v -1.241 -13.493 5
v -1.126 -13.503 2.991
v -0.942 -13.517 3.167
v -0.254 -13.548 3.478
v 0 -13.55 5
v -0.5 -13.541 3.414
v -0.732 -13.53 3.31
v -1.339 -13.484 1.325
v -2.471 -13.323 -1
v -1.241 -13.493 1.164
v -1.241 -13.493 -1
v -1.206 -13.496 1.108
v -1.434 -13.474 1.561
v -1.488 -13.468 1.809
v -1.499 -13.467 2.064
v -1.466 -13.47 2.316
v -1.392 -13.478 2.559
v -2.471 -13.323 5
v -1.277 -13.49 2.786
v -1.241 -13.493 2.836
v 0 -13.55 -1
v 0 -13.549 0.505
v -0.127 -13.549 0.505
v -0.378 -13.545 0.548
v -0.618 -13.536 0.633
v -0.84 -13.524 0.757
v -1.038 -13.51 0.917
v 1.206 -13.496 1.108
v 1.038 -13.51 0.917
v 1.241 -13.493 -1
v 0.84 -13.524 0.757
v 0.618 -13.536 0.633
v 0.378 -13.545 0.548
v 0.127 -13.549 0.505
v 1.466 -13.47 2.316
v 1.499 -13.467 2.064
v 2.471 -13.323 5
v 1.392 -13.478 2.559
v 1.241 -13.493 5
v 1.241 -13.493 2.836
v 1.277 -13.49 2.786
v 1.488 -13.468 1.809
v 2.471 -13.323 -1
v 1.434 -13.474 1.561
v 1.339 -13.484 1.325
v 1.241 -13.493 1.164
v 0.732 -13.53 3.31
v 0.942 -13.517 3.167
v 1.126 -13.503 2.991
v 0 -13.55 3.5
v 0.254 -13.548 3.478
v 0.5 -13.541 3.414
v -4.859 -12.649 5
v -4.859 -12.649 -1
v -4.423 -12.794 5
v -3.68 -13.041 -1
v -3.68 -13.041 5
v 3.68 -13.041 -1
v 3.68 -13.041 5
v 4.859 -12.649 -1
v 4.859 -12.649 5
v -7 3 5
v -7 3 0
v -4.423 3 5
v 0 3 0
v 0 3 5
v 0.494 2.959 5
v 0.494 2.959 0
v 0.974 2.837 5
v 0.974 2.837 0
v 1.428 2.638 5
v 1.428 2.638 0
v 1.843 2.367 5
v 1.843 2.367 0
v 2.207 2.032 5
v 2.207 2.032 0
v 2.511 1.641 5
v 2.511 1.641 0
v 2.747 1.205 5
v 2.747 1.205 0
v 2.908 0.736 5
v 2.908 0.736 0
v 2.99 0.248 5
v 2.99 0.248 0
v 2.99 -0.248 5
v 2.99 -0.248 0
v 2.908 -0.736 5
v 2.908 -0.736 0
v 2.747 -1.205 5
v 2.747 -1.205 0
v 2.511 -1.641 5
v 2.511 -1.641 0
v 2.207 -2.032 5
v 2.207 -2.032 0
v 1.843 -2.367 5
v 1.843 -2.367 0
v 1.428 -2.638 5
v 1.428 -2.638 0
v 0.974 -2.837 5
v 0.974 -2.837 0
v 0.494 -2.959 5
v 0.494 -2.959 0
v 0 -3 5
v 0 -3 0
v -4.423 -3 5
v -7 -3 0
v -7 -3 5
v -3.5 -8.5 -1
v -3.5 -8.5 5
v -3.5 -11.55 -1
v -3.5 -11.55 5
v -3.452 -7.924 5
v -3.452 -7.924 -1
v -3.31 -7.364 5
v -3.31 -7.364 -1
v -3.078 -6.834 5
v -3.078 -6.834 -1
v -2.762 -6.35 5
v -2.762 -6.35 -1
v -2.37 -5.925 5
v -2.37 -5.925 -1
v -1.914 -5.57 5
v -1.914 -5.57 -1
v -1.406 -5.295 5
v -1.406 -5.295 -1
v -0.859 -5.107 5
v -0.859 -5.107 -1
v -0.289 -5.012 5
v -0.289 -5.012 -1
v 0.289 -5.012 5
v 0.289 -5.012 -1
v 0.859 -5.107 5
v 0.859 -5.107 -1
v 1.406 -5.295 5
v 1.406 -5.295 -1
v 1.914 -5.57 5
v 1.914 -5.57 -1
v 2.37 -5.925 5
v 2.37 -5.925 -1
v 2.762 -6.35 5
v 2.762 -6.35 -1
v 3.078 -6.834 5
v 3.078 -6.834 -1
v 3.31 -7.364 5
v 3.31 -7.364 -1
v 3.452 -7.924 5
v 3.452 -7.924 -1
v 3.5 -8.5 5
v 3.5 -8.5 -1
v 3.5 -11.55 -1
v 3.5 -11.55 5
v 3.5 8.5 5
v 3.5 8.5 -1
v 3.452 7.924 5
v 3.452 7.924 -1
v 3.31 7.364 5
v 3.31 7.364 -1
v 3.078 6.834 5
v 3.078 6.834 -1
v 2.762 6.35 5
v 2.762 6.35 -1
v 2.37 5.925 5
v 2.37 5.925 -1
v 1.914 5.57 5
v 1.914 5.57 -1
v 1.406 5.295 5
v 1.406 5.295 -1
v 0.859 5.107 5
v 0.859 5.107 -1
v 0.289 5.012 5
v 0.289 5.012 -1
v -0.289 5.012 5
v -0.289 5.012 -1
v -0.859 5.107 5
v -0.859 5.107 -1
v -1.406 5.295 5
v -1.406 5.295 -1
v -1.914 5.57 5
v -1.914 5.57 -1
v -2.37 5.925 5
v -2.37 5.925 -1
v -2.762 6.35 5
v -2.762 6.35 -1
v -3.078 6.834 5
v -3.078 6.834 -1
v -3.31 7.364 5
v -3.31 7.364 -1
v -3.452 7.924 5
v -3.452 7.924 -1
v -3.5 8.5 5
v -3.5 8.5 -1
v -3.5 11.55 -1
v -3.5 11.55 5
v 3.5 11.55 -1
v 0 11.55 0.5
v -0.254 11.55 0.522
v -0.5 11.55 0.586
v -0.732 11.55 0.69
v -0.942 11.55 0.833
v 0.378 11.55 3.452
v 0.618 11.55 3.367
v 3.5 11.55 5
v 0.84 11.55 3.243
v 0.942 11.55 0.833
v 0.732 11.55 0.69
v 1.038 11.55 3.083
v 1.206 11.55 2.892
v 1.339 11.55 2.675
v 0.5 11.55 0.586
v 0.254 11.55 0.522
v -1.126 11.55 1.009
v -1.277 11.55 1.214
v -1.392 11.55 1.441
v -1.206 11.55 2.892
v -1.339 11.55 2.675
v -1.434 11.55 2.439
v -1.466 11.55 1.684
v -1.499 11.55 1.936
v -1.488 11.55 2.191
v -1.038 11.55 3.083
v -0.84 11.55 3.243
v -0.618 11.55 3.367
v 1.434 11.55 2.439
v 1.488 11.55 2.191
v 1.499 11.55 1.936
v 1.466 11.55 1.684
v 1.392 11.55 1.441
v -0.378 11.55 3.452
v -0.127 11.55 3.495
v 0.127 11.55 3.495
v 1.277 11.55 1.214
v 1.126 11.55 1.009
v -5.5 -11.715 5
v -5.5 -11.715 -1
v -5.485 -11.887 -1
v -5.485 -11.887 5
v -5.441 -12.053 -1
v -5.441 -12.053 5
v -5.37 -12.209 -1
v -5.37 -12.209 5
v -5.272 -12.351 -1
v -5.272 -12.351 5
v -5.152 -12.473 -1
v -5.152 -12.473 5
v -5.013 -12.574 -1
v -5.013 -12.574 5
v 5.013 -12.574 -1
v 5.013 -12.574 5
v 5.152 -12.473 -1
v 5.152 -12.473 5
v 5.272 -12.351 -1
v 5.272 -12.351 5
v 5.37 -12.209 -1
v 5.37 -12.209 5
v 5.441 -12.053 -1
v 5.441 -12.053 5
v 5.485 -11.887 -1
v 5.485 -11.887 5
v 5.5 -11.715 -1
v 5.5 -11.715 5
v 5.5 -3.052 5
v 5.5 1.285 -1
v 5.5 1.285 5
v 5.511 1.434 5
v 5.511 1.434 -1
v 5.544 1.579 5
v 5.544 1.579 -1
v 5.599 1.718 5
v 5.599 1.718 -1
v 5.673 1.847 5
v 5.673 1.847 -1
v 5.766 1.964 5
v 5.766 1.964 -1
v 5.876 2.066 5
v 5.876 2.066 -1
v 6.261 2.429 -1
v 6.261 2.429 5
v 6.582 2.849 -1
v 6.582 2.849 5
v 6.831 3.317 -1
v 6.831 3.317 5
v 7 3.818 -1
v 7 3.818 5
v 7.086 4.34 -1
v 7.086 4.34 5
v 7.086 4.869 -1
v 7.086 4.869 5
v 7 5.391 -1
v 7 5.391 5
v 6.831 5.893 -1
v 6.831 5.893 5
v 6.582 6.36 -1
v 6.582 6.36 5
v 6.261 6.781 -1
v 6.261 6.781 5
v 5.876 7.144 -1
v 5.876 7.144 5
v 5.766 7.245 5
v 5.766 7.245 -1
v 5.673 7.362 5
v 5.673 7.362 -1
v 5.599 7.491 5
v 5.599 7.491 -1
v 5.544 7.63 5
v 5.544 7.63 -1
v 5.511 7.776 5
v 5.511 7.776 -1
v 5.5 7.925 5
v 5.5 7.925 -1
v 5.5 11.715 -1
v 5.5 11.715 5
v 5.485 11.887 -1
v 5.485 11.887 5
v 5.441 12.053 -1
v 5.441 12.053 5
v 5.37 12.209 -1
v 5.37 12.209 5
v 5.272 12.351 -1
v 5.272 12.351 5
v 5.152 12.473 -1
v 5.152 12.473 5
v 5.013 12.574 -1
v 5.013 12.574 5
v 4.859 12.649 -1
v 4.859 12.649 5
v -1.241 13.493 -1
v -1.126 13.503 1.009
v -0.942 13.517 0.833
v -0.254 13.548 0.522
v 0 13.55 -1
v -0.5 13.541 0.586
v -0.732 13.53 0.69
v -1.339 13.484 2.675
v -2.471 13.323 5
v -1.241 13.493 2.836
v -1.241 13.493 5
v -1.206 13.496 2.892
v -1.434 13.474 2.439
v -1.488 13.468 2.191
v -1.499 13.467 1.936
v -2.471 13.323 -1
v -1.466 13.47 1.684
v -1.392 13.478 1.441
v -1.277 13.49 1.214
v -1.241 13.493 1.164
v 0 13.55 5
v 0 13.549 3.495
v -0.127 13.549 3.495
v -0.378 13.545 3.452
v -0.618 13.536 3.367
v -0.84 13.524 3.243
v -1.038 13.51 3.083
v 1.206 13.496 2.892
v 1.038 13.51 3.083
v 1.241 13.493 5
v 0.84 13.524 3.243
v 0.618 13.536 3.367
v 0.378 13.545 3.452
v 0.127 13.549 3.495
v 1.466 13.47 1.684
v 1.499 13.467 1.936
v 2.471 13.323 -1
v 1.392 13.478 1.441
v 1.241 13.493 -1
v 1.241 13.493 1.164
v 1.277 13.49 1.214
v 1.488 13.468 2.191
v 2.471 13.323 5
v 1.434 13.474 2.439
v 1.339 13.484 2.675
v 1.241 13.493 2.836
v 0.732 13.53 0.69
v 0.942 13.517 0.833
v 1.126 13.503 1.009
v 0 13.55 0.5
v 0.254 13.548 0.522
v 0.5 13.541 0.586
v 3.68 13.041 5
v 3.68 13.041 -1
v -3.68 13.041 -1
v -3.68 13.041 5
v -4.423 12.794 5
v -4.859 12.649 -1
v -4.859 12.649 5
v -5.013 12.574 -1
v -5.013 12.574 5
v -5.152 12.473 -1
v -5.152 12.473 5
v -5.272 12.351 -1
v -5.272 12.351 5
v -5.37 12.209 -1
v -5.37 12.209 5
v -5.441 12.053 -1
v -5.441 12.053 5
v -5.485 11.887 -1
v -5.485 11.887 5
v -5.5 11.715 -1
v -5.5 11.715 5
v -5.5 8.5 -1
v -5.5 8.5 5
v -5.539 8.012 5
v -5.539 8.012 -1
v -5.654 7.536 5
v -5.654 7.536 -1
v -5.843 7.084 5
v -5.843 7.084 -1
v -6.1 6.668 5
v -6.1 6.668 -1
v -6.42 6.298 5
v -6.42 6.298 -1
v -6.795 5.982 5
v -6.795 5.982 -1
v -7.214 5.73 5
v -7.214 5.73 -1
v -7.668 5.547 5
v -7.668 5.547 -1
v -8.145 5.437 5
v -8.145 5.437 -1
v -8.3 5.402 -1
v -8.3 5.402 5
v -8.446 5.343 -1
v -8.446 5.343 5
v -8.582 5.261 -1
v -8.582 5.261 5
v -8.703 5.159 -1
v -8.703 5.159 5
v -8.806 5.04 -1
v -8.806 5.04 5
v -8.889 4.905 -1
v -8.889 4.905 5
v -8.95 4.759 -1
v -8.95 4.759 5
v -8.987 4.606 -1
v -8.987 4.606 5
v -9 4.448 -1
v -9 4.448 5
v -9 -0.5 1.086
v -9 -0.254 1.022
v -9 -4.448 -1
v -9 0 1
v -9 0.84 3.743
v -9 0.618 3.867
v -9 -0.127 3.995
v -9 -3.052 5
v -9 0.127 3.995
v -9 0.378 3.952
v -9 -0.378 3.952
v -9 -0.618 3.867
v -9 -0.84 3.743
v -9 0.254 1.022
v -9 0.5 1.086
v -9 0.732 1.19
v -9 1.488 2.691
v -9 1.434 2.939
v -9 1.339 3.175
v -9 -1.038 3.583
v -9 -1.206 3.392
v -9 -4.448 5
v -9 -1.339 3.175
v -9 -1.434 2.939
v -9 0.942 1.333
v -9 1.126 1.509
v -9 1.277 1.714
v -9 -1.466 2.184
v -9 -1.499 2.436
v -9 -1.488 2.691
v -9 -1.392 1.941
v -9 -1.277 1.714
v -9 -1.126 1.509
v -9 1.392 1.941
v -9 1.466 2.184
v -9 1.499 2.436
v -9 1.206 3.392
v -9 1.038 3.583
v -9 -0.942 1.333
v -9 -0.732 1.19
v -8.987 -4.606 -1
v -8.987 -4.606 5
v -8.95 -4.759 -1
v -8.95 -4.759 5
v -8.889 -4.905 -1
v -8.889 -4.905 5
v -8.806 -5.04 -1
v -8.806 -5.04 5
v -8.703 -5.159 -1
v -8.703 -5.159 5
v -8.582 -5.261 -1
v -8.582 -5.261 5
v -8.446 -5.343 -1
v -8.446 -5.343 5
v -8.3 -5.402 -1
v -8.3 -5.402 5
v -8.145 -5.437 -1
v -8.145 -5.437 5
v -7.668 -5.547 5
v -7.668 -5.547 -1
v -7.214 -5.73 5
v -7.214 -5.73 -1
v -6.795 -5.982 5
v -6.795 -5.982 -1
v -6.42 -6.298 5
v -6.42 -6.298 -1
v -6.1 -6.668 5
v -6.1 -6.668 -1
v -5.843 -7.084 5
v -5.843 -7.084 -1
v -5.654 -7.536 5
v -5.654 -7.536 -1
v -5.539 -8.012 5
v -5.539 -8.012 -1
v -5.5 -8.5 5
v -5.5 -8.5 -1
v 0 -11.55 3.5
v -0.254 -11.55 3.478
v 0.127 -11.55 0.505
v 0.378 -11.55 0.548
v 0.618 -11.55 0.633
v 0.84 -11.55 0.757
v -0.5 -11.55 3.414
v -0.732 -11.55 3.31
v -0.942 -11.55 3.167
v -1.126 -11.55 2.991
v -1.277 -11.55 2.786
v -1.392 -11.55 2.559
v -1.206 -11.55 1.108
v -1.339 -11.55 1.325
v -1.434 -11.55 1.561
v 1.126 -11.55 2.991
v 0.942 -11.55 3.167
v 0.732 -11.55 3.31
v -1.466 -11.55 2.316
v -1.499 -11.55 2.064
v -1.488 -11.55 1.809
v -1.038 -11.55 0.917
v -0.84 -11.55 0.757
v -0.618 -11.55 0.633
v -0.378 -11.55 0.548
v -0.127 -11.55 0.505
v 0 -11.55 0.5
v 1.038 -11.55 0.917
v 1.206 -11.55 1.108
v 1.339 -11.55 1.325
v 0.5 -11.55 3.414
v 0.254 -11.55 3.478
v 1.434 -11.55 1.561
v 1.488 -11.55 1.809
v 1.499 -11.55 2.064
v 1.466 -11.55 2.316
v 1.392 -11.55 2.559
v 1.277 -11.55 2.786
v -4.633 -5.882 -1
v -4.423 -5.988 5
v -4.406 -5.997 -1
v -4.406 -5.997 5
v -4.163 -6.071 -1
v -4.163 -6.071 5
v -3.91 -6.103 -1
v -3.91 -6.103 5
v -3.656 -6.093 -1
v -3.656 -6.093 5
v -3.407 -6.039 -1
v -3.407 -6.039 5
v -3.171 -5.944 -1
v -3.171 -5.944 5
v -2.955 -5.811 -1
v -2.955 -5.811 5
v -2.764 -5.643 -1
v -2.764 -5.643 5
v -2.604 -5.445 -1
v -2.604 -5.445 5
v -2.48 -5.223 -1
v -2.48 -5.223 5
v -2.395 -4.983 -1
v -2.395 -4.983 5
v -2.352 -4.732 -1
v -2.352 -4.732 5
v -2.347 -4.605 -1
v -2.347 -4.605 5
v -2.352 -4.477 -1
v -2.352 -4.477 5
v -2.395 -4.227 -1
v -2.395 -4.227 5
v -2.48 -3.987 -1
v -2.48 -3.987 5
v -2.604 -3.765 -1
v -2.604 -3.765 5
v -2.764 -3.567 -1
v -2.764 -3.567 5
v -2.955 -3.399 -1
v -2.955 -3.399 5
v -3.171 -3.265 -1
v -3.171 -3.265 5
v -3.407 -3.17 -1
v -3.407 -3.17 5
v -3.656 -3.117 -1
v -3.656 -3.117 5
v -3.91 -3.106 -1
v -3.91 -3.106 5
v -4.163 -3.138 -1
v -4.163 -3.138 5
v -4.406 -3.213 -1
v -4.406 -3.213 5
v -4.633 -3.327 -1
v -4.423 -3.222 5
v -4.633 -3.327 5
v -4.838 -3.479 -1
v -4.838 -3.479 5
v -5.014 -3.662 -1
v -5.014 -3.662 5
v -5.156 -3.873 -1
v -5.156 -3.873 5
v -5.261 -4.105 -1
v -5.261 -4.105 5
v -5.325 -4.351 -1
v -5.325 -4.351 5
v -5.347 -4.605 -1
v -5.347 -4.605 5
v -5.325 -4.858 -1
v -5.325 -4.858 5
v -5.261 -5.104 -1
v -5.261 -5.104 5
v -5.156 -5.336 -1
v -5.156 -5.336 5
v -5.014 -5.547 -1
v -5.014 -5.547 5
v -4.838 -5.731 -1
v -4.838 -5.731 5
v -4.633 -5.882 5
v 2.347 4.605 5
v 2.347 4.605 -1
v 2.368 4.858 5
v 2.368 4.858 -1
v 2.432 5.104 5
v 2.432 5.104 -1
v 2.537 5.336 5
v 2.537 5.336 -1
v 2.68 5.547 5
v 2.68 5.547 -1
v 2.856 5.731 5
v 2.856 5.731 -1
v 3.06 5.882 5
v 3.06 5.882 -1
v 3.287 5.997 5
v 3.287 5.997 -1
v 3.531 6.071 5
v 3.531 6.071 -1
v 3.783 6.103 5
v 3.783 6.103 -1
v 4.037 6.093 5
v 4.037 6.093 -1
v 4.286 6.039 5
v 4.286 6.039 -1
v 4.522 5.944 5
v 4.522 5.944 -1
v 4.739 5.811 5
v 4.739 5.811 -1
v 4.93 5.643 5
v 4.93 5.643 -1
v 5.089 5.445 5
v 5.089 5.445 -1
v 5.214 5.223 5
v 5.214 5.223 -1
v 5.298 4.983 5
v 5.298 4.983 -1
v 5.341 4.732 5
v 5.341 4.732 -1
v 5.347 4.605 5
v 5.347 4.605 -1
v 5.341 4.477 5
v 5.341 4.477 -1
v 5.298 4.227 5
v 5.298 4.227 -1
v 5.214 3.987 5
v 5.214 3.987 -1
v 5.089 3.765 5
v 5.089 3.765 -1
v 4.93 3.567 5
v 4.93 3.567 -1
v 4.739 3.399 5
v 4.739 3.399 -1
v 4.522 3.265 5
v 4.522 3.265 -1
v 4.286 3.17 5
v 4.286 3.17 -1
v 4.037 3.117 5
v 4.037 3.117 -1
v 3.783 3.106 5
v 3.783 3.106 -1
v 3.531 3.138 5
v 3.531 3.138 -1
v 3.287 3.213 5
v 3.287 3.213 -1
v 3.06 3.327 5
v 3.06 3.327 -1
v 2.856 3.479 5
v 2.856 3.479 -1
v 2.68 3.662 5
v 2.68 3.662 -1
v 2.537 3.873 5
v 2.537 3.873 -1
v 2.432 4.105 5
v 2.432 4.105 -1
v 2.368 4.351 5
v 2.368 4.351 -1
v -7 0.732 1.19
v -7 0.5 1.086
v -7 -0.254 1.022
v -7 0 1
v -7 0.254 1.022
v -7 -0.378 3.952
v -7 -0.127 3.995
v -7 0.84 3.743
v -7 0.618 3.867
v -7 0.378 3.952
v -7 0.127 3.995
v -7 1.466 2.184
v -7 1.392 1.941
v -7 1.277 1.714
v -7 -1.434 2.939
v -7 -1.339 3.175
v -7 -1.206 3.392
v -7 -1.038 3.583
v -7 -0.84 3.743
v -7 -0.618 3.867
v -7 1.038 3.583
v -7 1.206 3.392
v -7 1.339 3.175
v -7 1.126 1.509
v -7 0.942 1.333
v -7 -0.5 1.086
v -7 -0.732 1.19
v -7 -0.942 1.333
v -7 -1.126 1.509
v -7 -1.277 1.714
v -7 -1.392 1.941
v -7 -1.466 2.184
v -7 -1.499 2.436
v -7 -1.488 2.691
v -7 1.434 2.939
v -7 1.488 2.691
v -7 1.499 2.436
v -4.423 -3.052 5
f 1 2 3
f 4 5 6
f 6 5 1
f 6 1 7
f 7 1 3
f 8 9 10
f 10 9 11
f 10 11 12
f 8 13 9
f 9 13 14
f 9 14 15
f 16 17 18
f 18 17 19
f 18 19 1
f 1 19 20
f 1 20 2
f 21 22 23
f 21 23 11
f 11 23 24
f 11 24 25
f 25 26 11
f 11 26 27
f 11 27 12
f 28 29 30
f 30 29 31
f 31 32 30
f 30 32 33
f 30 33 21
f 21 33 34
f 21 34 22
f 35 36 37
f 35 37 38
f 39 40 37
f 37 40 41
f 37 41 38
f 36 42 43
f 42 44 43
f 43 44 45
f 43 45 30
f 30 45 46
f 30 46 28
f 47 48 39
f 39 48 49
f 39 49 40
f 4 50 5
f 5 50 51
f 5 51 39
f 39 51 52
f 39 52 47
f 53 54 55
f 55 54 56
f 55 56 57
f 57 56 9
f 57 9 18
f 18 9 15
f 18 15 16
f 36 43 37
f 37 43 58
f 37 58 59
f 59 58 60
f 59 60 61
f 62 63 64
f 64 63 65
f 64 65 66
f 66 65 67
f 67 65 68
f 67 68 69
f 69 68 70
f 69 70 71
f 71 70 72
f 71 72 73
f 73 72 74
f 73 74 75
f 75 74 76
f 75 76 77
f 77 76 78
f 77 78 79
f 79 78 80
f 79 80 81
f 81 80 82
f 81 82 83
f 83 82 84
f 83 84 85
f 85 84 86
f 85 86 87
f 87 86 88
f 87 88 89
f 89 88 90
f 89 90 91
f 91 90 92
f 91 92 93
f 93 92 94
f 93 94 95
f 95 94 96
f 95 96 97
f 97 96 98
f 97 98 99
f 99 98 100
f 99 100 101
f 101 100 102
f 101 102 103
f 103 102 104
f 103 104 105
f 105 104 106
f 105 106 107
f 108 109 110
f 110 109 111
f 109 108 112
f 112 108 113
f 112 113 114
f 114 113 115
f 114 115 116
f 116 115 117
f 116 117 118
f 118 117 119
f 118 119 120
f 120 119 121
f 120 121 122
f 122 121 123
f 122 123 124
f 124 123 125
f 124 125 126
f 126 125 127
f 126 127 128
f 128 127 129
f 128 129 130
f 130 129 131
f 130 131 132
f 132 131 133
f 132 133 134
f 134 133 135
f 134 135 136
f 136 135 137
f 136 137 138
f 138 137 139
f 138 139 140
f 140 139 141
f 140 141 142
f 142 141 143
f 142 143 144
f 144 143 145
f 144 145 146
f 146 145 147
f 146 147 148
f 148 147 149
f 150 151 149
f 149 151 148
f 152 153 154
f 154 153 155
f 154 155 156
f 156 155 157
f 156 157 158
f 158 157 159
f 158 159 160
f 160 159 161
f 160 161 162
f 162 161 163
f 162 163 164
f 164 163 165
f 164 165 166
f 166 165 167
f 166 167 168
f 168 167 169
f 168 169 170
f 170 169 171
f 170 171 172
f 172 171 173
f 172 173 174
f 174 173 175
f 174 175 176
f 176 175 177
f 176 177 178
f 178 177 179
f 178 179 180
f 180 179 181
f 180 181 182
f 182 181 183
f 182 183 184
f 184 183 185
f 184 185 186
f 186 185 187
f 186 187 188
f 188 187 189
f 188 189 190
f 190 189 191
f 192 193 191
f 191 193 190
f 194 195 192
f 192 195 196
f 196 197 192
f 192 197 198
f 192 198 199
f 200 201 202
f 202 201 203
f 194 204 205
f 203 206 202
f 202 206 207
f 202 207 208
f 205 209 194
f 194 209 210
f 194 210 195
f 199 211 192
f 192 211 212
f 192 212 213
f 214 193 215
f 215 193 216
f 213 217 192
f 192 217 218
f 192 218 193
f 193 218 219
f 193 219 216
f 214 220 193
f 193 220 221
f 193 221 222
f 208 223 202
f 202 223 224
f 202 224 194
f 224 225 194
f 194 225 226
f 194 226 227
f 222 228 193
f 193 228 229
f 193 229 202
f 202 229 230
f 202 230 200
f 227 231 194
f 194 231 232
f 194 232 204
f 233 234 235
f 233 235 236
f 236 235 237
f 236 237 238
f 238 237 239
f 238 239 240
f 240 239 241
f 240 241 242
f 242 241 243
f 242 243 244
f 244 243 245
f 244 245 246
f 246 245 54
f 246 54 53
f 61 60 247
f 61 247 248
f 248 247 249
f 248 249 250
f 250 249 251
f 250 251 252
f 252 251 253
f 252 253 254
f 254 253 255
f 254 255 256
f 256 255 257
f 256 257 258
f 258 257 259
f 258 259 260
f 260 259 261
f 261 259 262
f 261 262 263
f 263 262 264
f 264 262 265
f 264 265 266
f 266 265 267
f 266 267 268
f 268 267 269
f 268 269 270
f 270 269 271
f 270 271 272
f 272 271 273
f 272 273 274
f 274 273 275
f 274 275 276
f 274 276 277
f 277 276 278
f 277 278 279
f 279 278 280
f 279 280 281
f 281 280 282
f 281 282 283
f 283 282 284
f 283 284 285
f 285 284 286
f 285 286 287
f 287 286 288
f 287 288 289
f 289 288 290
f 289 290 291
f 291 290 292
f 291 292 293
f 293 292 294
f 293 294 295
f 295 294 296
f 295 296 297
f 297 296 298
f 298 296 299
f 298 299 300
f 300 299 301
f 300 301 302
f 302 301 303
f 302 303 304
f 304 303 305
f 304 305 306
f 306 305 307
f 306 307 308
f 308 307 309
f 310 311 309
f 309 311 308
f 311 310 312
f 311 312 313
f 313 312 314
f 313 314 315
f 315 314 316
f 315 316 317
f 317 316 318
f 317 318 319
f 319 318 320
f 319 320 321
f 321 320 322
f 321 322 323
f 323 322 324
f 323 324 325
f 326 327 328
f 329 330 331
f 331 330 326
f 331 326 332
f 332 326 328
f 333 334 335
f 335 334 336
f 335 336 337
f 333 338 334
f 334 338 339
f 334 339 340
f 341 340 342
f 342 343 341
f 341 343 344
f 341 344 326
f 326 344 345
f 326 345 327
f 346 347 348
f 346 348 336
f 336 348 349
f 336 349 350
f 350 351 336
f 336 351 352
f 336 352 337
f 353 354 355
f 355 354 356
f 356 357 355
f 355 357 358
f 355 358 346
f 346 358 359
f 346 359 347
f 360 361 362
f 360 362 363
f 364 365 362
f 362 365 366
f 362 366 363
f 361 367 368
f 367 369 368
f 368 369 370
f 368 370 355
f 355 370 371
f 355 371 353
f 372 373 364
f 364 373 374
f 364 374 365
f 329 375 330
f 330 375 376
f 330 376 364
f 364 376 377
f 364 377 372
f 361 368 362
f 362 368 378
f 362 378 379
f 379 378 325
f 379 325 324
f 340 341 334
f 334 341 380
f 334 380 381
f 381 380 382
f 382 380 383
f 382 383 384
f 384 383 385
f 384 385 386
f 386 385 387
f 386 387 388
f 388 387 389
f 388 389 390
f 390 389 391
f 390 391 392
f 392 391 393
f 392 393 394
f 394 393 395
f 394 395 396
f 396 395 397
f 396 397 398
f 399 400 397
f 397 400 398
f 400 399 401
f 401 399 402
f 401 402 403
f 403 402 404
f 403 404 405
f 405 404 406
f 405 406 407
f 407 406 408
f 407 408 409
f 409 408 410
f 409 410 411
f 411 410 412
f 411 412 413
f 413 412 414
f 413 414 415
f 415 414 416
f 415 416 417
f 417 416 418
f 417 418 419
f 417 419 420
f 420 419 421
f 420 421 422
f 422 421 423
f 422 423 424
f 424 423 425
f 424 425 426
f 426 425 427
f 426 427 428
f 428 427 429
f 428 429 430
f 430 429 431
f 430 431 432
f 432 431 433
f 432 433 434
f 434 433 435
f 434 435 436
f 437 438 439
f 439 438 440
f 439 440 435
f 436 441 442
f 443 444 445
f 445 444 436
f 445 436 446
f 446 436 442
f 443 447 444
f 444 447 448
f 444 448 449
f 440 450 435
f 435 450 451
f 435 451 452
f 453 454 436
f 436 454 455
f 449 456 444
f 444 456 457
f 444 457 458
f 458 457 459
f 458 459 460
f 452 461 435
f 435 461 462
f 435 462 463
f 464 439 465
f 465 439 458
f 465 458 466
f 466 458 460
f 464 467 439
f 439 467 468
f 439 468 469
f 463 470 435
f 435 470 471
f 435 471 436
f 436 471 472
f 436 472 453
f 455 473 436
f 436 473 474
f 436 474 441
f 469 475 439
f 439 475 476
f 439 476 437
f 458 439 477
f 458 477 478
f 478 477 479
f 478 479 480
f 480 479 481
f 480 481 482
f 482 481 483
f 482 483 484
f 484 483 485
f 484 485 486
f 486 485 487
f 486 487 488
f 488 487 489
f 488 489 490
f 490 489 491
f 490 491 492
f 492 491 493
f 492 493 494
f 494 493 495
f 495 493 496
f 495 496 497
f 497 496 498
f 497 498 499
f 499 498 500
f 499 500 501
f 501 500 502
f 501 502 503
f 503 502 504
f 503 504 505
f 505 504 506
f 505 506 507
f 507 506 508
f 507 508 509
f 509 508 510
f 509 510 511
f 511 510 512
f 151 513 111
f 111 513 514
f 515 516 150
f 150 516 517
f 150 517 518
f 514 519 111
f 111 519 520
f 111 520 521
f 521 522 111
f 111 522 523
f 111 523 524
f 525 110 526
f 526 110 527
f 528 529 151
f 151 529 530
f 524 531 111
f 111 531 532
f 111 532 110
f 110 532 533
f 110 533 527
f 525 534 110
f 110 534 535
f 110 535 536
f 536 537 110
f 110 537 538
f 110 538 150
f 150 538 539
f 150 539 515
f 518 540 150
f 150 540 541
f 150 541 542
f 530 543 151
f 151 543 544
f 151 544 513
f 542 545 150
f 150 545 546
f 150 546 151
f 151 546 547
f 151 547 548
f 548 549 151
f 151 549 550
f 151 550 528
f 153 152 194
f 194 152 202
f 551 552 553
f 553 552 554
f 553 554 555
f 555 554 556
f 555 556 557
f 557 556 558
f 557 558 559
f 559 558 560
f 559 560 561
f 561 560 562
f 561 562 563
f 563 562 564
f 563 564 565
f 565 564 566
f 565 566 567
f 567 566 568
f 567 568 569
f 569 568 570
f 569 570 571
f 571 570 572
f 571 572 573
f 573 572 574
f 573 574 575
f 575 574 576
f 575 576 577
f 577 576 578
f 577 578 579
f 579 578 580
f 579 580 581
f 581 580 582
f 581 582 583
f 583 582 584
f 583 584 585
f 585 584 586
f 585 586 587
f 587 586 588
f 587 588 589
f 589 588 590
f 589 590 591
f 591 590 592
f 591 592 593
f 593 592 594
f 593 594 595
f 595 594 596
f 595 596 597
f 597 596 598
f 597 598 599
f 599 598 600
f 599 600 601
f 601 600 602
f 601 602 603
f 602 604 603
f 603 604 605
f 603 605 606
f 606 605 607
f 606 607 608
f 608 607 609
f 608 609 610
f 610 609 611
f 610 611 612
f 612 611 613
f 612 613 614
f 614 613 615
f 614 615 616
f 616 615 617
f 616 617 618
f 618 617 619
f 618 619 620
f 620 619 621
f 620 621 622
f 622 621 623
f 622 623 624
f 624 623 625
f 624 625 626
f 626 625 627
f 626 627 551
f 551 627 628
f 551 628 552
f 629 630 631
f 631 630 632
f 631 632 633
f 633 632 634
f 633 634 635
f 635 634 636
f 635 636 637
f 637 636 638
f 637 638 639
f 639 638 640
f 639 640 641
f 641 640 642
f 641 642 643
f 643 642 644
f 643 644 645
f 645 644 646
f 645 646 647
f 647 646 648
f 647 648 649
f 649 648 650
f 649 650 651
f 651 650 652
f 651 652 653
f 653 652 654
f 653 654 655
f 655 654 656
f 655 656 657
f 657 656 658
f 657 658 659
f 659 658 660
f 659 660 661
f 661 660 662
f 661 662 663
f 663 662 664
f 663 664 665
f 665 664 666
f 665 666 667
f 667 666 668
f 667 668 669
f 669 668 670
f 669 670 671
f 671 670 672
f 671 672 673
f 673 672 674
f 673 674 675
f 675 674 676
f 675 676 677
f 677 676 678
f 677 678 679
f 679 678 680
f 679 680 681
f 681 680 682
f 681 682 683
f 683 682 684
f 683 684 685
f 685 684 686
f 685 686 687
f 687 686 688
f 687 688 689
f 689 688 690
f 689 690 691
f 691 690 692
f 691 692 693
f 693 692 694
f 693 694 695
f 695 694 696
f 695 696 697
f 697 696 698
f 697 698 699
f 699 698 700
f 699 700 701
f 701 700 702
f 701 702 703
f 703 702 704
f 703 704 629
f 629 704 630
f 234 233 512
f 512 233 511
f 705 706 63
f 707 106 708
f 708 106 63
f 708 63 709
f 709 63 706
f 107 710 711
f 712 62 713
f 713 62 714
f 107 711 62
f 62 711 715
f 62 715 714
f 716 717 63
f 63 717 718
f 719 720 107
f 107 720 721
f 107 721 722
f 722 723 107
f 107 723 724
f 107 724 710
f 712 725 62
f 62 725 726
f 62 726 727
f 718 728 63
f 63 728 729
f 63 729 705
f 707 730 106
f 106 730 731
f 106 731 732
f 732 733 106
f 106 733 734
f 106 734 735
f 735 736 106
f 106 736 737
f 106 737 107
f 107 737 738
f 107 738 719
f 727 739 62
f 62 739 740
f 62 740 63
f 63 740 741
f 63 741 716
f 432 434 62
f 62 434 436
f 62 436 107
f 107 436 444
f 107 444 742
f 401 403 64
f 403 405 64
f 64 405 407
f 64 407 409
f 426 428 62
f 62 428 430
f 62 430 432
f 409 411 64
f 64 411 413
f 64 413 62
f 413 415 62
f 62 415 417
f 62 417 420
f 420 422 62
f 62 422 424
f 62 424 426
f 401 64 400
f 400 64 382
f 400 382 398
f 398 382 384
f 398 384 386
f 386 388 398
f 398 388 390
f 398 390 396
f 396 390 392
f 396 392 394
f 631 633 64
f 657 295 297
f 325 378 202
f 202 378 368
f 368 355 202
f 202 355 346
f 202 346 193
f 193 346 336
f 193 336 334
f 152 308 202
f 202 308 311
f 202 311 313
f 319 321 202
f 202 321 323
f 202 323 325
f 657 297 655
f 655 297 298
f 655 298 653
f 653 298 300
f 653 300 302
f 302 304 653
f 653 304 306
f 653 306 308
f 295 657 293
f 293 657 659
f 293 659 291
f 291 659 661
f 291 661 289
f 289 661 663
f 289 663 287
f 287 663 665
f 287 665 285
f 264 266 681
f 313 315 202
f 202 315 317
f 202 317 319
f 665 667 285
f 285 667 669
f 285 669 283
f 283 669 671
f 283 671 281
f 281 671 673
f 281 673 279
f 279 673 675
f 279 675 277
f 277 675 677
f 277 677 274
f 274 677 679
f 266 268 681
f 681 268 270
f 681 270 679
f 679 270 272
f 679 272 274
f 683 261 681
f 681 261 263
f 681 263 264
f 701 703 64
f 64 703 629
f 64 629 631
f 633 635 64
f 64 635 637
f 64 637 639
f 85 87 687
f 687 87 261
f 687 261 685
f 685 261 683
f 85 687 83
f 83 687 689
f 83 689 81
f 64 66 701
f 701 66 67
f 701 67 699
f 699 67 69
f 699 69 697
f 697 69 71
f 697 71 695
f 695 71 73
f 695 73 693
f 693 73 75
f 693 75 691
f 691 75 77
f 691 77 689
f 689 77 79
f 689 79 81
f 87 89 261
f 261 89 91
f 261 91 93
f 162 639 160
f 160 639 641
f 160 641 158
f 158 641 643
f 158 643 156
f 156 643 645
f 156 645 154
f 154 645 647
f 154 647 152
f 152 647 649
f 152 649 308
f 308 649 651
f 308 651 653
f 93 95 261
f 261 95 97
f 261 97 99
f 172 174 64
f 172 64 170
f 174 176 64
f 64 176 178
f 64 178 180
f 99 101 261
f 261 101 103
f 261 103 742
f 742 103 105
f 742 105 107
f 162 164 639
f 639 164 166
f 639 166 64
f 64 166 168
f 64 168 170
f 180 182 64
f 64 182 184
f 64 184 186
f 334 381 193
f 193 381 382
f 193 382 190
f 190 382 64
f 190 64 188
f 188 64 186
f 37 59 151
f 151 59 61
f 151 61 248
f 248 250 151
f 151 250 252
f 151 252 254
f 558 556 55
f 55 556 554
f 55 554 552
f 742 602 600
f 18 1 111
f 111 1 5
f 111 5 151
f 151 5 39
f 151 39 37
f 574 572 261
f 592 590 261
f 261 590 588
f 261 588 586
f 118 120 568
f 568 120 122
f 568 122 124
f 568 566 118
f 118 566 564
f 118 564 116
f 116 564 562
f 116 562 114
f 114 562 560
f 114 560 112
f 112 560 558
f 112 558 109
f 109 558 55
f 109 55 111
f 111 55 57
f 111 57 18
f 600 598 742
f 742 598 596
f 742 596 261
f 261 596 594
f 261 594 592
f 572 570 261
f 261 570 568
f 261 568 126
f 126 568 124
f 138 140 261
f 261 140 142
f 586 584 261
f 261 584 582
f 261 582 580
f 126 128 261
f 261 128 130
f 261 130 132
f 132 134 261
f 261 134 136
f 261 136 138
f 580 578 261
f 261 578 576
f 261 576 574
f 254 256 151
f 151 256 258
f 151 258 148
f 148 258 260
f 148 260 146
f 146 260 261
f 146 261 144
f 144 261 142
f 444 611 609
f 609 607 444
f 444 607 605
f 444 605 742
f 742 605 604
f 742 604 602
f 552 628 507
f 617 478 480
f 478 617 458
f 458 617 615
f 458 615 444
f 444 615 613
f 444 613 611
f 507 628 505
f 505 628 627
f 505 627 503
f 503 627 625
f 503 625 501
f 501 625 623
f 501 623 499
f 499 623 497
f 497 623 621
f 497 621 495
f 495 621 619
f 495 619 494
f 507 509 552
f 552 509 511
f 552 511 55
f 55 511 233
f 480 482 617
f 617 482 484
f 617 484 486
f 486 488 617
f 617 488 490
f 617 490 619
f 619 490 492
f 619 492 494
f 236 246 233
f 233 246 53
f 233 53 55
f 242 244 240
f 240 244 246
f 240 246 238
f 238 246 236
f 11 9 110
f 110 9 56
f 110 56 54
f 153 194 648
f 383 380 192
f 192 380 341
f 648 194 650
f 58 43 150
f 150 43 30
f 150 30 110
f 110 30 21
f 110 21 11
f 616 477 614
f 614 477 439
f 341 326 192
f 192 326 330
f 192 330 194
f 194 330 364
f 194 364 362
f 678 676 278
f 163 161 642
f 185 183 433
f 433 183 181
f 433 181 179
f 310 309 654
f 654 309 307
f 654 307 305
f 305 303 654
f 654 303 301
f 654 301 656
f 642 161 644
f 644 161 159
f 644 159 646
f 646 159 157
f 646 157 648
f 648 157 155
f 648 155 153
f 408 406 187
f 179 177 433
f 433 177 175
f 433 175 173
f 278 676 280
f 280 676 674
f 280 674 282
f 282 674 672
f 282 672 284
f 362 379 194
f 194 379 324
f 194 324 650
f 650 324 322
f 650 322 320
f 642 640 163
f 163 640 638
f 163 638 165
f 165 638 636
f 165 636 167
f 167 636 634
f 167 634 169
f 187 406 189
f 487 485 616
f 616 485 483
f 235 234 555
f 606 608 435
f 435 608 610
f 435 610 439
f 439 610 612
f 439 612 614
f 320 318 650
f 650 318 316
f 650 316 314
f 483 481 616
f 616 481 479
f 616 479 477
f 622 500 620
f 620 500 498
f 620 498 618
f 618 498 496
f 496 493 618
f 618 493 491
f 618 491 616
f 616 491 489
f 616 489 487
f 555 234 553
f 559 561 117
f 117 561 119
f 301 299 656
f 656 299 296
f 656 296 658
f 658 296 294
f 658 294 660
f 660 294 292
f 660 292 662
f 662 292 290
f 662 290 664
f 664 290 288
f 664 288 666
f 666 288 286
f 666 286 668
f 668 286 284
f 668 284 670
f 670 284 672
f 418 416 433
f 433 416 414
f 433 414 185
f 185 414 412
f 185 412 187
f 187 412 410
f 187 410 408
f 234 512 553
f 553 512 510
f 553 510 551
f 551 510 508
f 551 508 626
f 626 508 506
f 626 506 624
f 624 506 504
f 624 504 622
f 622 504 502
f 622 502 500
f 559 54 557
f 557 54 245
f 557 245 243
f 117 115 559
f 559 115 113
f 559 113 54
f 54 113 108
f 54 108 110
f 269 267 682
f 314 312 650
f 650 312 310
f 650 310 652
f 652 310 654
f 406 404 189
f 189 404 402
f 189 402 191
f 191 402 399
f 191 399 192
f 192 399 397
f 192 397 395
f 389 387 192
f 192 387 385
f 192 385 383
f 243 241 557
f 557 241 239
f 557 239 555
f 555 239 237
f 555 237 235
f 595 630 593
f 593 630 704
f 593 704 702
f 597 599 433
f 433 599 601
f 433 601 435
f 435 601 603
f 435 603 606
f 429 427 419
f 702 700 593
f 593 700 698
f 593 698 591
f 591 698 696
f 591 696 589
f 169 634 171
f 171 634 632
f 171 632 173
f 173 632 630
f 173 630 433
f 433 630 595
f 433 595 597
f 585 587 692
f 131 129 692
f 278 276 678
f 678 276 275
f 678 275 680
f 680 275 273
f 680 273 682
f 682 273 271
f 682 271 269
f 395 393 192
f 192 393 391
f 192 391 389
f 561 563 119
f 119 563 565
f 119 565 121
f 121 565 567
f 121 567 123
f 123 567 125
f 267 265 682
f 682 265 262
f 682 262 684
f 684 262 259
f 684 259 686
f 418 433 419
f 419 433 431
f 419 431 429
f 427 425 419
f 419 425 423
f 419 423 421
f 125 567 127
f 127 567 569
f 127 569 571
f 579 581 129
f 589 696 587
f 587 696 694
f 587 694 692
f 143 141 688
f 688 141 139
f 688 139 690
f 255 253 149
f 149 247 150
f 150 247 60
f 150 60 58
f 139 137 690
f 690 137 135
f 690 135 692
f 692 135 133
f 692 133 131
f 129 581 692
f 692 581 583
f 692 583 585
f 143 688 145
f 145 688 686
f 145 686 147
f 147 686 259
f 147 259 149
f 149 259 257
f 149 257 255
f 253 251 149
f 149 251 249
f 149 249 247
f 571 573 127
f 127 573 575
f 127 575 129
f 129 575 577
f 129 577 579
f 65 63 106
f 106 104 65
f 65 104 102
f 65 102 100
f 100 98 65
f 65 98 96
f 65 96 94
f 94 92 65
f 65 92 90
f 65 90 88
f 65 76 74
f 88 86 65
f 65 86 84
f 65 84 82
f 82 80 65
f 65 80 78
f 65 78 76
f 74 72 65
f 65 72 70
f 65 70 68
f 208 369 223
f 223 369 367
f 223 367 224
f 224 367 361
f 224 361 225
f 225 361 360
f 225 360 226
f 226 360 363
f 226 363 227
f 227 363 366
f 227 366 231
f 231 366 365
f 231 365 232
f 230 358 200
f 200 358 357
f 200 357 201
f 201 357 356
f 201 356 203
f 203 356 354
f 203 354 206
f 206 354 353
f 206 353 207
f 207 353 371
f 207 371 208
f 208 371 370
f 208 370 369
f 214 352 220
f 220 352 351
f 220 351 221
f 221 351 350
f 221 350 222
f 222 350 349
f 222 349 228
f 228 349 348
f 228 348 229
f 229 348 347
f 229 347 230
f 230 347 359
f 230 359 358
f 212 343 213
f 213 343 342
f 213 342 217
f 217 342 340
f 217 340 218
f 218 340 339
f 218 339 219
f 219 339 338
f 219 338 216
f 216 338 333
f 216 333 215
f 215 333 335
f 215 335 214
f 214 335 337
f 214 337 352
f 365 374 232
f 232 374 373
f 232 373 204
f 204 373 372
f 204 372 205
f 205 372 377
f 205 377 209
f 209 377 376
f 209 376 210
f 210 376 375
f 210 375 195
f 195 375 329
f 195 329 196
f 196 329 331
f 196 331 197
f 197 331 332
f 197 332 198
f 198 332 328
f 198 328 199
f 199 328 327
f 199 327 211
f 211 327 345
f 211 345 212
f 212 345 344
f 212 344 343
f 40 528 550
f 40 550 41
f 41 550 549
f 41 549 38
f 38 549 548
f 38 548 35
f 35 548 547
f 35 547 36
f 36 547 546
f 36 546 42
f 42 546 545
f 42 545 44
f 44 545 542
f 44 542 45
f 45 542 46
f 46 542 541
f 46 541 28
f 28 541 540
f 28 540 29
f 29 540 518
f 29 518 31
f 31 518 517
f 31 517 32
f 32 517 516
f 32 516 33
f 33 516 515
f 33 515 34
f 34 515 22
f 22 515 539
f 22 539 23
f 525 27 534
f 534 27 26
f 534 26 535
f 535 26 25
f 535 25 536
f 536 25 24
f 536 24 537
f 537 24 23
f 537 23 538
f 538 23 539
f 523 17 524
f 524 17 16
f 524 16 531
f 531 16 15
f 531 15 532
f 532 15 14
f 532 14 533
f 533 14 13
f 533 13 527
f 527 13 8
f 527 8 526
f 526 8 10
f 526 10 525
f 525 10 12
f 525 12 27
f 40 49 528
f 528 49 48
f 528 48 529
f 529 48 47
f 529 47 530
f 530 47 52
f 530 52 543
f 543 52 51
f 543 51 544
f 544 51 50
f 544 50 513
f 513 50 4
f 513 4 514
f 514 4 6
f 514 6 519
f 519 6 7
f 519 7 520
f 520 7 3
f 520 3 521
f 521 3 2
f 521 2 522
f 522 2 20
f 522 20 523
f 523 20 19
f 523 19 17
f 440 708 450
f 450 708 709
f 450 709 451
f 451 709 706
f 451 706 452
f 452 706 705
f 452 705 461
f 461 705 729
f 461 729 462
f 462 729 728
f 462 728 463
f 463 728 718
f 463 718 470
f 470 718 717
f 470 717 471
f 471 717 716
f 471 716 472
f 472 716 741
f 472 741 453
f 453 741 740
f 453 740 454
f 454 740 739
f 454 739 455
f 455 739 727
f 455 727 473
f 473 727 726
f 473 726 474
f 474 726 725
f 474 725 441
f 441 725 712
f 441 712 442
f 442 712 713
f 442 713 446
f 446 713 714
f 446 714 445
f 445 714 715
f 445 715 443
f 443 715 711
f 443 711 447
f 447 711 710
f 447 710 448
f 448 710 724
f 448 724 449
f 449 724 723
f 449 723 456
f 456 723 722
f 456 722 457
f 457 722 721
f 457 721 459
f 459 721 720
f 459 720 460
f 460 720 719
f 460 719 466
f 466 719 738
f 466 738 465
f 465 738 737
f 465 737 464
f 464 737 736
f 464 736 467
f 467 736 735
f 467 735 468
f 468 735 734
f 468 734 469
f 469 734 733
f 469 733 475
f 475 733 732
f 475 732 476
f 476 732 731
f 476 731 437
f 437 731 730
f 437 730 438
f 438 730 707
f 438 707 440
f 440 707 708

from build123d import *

# Parameters (mm, degrees)
ESQUISSE1_R             = 1.5
BOSS_EXTRU_1_DEPTH      = 5
BOSS_EXTRU_2_START      = -1
ESQUISSE1_3_R           = 1.5
BOSS_EXTRU_2_DEPTH      = 1
ESQUISSE2_R             = 1.5
ENL_V_MAT_EXTRU_2_DEPTH = 28.129504234
ESQUISSE3_R             = 1.5
ENL_V_MAT_EXTRU_3_DEPTH = 21.182147001


with BuildPart() as part:
    # Esquisse1 → Boss.-Extru.1 (new body)
    with BuildSketch(Plane.XY):
        with BuildLine():
            ThreePointArc((-8.145422919, 5.437314339), (-8.756777021, 5.101617869), (-9, 4.447944754))
            Line((-9, 4.447944754), (-9, -4.447944754))
            ThreePointArc((-9, -4.447944754), (-8.756777021, -5.101617869), (-8.145422919, -5.437314339))
            ThreePointArc((-8.145422919, -5.437314339), (-6.252919377, -6.476494015), (-5.5, -8.5))
            Line((-5.5, -8.5), (-5.5, -11.715481211))
            ThreePointArc((-5.5, -11.715481211), (-5.324186186, -12.281800142), (-4.858565737, -12.64898569))
            ThreePointArc((-4.858565737, -12.64898569), (0, -13.55), (4.858565737, -12.64898569))
            ThreePointArc((4.858565737, -12.64898569), (5.324186186, -12.281800142), (5.5, -11.715481211))
            Line((5.5, -11.715481211), (5.5, 1.284668728))
            ThreePointArc((5.5, 1.284668728), (5.598803794, 1.718080078), (5.875690797, 2.065846057))
            ThreePointArc((5.875690797, 2.065846057), (7.096685887, 4.604672376), (5.875690797, 7.143498694))
            ThreePointArc((5.875690797, 7.143498694), (5.598803794, 7.491264673), (5.5, 7.924676023))
            Line((5.5, 7.924676023), (5.5, 11.715481211))
            ThreePointArc((5.5, 11.715481211), (5.324186186, 12.281800142), (4.858565737, 12.64898569))
            ThreePointArc((4.858565737, 12.64898569), (0, 13.55), (-4.858565737, 12.64898569))
            ThreePointArc((-4.858565737, 12.64898569), (-5.324186186, 12.281800142), (-5.5, 11.715481211))
            Line((-5.5, 11.715481211), (-5.5, 8.5))
            ThreePointArc((-5.5, 8.5), (-6.252919377, 6.476494015), (-8.145422919, 5.437314339))
        make_face()
        with Locations((-3.846685887, -4.604672376)):
            Circle(ESQUISSE1_R, mode=Mode.SUBTRACT)
        with BuildLine():
            ThreePointArc((3, 0), (2.121320344, -2.121320344), (0, -3))
            Line((0, -3), (-7, -3))
            Line((-7, -3), (-7, 3))
            Line((-7, 3), (0, 3))
            ThreePointArc((0, 3), (2.121320344, 2.121320344), (3, 0))
        make_face(mode=Mode.SUBTRACT)
        with BuildLine():
            Line((3.5, -11.55), (-3.5, -11.55))
            Line((-3.5, -11.55), (-3.5, -8.5))
            ThreePointArc((-3.5, -8.5), (0, -5), (3.5, -8.5))
            Line((3.5, -8.5), (3.5, -11.55))
        make_face(mode=Mode.SUBTRACT)
        with Locations((3.846685887, 4.604672376)):
            Circle(ESQUISSE1_R, mode=Mode.SUBTRACT)
        with BuildLine():
            Line((-3.5, 8.5), (-3.5, 11.55))
            Line((-3.5, 11.55), (3.5, 11.55))
            Line((3.5, 11.55), (3.5, 8.5))
            ThreePointArc((3.5, 8.5), (0, 5), (-3.5, 8.5))
        make_face(mode=Mode.SUBTRACT)
    extrude(amount=BOSS_EXTRU_1_DEPTH)

    # Esquisse1<3> → Boss.-Extru.2 (add)
    with BuildSketch(Plane.XY.offset(BOSS_EXTRU_2_START)):
        with BuildLine():
            ThreePointArc((-8.145422919, 5.437314339), (-8.756777021, 5.101617869), (-9, 4.447944754))
            Line((-9, 4.447944754), (-9, -4.447944754))
            ThreePointArc((-9, -4.447944754), (-8.756777021, -5.101617869), (-8.145422919, -5.437314339))
            ThreePointArc((-8.145422919, -5.437314339), (-6.252919377, -6.476494015), (-5.5, -8.5))
            Line((-5.5, -8.5), (-5.5, -11.715481211))
            ThreePointArc((-5.5, -11.715481211), (-5.324186186, -12.281800142), (-4.858565737, -12.64898569))
            ThreePointArc((-4.858565737, -12.64898569), (0, -13.55), (4.858565737, -12.64898569))
            ThreePointArc((4.858565737, -12.64898569), (5.324186186, -12.281800142), (5.5, -11.715481211))
            Line((5.5, -11.715481211), (5.5, 1.284668728))
            ThreePointArc((5.5, 1.284668728), (5.598803794, 1.718080078), (5.875690797, 2.065846057))
            ThreePointArc((5.875690797, 2.065846057), (7.096685887, 4.604672376), (5.875690797, 7.143498694))
            ThreePointArc((5.875690797, 7.143498694), (5.598803794, 7.491264673), (5.5, 7.924676023))
            Line((5.5, 7.924676023), (5.5, 11.715481211))
            ThreePointArc((5.5, 11.715481211), (5.324186186, 12.281800142), (4.858565737, 12.64898569))
            ThreePointArc((4.858565737, 12.64898569), (0, 13.55), (-4.858565737, 12.64898569))
            ThreePointArc((-4.858565737, 12.64898569), (-5.324186186, 12.281800142), (-5.5, 11.715481211))
            Line((-5.5, 11.715481211), (-5.5, 8.5))
            ThreePointArc((-5.5, 8.5), (-6.252919377, 6.476494015), (-8.145422919, 5.437314339))
        make_face()
        with Locations((-3.846685887, -4.604672376)):
            Circle(ESQUISSE1_3_R, mode=Mode.SUBTRACT)
        with BuildLine():
            ThreePointArc((3.5, 8.5), (0, 5), (-3.5, 8.5))
            Line((-3.5, 8.5), (-3.5, 11.55))
            Line((-3.5, 11.55), (3.5, 11.55))
            Line((3.5, 11.55), (3.5, 8.5))
        make_face(mode=Mode.SUBTRACT)
        with BuildLine():
            Line((3.5, -11.55), (-3.5, -11.55))
            Line((-3.5, -11.55), (-3.5, -8.5))
            ThreePointArc((-3.5, -8.5), (0, -5), (3.5, -8.5))
            Line((3.5, -8.5), (3.5, -11.55))
        make_face(mode=Mode.SUBTRACT)
        with Locations((3.846685887, 4.604672376)):
            Circle(ESQUISSE1_3_R, mode=Mode.SUBTRACT)
    extrude(amount=BOSS_EXTRU_2_DEPTH)

    # Esquisse2 → Enlèv. mat.-Extru.2 (cut, through all)
    with BuildSketch(Plane.XZ.offset(-11.55)):
        with Locations((0, 2)):
            Circle(ESQUISSE2_R)
    enl_v_mat_extru_2 = extrude(amount=-ENL_V_MAT_EXTRU_2_DEPTH, mode=Mode.SUBTRACT)

    # Symétrie1: Enlèv. mat.-Extru.2 across plane
    add(enl_v_mat_extru_2.mirror(Plane.ZX), mode=Mode.SUBTRACT)

    # Esquisse3 → Enlèv. mat.-Extru.3 (cut, through all)
    with BuildSketch(Plane(origin=(-7, 0, 0), x_dir=(0, 0, -1), z_dir=(1, 0, 0))):
        with Locations((-2.5, 0)):
            Circle(ESQUISSE3_R)
    extrude(amount=-ENL_V_MAT_EXTRU_3_DEPTH, mode=Mode.SUBTRACT)


solid = part.part
